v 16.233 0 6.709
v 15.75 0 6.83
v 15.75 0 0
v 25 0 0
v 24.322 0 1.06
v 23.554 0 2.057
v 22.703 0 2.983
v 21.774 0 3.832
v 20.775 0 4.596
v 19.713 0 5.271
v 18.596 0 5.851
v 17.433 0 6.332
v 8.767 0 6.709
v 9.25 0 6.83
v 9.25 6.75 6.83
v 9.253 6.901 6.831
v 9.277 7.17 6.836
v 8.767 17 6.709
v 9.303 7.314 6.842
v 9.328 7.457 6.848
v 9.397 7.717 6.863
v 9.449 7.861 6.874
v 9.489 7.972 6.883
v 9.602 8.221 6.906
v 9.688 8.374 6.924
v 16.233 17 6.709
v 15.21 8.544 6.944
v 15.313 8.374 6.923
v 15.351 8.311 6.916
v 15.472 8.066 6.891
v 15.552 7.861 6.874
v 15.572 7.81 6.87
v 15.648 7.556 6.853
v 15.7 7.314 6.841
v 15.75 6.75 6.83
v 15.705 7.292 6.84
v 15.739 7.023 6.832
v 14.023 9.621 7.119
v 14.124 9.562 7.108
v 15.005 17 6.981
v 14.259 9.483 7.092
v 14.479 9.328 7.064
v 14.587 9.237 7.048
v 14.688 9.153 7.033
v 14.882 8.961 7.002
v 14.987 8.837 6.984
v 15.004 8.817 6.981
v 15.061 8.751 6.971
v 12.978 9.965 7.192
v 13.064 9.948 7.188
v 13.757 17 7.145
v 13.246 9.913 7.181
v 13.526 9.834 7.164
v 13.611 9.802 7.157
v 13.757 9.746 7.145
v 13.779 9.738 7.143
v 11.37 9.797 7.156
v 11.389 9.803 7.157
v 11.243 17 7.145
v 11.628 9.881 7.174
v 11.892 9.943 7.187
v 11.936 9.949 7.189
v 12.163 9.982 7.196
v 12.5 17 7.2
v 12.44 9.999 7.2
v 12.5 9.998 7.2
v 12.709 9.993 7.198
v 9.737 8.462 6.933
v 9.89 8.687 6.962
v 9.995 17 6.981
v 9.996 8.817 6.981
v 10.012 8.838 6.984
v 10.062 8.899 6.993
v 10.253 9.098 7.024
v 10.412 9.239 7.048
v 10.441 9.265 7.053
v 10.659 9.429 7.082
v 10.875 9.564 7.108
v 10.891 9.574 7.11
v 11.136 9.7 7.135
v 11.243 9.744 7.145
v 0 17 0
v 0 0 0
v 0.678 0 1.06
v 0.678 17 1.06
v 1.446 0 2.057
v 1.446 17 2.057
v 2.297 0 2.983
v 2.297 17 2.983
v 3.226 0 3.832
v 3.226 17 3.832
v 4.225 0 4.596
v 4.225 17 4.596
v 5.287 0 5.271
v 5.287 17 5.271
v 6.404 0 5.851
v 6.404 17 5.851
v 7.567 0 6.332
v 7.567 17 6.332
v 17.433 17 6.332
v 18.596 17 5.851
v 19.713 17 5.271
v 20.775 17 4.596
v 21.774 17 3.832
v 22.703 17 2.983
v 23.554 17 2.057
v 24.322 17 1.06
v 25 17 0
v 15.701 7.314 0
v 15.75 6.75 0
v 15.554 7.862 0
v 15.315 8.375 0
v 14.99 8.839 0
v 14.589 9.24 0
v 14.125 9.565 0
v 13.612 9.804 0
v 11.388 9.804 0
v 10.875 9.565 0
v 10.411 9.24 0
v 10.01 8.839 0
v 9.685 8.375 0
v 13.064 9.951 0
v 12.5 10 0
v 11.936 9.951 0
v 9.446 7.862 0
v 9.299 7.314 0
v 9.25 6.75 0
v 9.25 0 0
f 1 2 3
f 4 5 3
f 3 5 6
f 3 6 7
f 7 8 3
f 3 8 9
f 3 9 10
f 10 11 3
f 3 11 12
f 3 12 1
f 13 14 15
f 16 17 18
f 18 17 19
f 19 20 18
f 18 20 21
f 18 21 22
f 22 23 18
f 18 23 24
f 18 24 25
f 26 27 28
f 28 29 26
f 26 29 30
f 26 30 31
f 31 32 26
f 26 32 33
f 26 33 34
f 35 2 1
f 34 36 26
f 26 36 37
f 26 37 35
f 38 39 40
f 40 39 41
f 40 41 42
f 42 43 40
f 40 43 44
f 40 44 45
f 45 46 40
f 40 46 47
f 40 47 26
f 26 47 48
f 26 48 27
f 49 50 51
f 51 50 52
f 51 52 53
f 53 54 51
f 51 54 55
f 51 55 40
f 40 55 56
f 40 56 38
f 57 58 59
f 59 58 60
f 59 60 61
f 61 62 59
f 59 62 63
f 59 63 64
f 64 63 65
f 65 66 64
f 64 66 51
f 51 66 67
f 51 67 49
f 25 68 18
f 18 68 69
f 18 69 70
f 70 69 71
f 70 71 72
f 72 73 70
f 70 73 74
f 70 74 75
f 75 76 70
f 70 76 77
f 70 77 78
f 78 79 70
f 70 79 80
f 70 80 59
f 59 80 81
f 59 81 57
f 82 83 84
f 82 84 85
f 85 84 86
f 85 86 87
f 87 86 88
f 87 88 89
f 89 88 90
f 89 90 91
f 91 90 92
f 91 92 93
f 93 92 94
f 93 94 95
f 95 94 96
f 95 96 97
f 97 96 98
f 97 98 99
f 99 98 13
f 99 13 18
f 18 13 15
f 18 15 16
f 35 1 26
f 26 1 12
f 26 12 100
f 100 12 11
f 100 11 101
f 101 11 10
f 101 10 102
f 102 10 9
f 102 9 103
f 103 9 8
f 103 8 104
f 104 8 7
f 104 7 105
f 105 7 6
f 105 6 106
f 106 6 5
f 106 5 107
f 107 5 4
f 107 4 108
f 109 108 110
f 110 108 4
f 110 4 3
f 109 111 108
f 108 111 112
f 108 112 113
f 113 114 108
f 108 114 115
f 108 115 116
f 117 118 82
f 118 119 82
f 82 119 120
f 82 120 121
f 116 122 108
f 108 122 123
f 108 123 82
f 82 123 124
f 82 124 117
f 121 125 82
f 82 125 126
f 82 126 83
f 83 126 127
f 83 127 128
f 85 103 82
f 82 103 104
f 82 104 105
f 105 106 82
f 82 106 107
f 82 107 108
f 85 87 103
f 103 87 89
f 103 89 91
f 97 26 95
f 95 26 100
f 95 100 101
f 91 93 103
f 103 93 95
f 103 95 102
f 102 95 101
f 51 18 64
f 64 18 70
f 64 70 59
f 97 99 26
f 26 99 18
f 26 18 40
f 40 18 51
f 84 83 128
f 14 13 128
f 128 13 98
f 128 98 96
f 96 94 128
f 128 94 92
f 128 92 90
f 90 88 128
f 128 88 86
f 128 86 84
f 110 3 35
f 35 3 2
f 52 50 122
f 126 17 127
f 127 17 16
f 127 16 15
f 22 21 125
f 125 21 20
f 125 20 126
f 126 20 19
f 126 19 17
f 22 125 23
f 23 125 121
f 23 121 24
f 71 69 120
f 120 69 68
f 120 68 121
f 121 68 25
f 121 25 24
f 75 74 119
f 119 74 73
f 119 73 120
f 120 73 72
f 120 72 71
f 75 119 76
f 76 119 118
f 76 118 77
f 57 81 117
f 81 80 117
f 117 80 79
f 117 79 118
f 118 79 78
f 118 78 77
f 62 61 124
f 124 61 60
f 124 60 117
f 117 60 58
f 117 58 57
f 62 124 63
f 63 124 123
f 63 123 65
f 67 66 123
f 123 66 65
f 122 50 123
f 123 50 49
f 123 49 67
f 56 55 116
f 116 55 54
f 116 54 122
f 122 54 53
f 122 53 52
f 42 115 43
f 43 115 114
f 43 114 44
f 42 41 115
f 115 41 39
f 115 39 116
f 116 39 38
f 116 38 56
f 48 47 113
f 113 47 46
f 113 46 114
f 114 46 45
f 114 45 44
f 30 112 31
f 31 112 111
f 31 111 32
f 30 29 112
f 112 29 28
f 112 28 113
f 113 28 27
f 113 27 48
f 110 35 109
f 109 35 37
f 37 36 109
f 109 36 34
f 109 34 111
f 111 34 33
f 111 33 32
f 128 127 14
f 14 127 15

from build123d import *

# Parameters (mm, degrees)
BOSS_EXTRUDE1_DEPTH = 17
CUT_EXTRUDE1_REACH  = 9.2


with BuildPart() as part:
    # Sketch2 → Boss-Extrude1 (new body)
    with BuildSketch(Plane(origin=(0, 0, 0), x_dir=(1, 0, 0), z_dir=(0, 1, 0))):
        with BuildLine():
            Line((0, 0), (25, 0))
            ThreePointArc((25, 0), (12.5, -7.2), (0, 0))
        make_face()
    extrude(amount=BOSS_EXTRUDE1_DEPTH)

    # Sketch3 → Cut-Extrude1 (cut, up to next)
    with BuildSketch(Plane(origin=(0, 0, 0), x_dir=(-1, 0, 0), z_dir=(0, 0, -1)), mode=Mode.PRIVATE) as cut_extrude1_sk1:
        with BuildLine():
            Line((-15.75, 0), (-15.75, 6.75))
            ThreePointArc((-15.75, 6.75), (-12.5, 10), (-9.25, 6.75))
            Line((-9.25, 6.75), (-9.25, 0))
            Line((-9.25, 0), (-15.75, 0))
        make_face()
    cut_extrude1_tool1 = extrude(cut_extrude1_sk1.sketch, amount=-CUT_EXTRUDE1_REACH, mode=Mode.PRIVATE) & part.part
    add(cut_extrude1_tool1.solids().sort_by_distance((12.5, 4.679554, 0))[0], mode=Mode.SUBTRACT)


solid = part.part
